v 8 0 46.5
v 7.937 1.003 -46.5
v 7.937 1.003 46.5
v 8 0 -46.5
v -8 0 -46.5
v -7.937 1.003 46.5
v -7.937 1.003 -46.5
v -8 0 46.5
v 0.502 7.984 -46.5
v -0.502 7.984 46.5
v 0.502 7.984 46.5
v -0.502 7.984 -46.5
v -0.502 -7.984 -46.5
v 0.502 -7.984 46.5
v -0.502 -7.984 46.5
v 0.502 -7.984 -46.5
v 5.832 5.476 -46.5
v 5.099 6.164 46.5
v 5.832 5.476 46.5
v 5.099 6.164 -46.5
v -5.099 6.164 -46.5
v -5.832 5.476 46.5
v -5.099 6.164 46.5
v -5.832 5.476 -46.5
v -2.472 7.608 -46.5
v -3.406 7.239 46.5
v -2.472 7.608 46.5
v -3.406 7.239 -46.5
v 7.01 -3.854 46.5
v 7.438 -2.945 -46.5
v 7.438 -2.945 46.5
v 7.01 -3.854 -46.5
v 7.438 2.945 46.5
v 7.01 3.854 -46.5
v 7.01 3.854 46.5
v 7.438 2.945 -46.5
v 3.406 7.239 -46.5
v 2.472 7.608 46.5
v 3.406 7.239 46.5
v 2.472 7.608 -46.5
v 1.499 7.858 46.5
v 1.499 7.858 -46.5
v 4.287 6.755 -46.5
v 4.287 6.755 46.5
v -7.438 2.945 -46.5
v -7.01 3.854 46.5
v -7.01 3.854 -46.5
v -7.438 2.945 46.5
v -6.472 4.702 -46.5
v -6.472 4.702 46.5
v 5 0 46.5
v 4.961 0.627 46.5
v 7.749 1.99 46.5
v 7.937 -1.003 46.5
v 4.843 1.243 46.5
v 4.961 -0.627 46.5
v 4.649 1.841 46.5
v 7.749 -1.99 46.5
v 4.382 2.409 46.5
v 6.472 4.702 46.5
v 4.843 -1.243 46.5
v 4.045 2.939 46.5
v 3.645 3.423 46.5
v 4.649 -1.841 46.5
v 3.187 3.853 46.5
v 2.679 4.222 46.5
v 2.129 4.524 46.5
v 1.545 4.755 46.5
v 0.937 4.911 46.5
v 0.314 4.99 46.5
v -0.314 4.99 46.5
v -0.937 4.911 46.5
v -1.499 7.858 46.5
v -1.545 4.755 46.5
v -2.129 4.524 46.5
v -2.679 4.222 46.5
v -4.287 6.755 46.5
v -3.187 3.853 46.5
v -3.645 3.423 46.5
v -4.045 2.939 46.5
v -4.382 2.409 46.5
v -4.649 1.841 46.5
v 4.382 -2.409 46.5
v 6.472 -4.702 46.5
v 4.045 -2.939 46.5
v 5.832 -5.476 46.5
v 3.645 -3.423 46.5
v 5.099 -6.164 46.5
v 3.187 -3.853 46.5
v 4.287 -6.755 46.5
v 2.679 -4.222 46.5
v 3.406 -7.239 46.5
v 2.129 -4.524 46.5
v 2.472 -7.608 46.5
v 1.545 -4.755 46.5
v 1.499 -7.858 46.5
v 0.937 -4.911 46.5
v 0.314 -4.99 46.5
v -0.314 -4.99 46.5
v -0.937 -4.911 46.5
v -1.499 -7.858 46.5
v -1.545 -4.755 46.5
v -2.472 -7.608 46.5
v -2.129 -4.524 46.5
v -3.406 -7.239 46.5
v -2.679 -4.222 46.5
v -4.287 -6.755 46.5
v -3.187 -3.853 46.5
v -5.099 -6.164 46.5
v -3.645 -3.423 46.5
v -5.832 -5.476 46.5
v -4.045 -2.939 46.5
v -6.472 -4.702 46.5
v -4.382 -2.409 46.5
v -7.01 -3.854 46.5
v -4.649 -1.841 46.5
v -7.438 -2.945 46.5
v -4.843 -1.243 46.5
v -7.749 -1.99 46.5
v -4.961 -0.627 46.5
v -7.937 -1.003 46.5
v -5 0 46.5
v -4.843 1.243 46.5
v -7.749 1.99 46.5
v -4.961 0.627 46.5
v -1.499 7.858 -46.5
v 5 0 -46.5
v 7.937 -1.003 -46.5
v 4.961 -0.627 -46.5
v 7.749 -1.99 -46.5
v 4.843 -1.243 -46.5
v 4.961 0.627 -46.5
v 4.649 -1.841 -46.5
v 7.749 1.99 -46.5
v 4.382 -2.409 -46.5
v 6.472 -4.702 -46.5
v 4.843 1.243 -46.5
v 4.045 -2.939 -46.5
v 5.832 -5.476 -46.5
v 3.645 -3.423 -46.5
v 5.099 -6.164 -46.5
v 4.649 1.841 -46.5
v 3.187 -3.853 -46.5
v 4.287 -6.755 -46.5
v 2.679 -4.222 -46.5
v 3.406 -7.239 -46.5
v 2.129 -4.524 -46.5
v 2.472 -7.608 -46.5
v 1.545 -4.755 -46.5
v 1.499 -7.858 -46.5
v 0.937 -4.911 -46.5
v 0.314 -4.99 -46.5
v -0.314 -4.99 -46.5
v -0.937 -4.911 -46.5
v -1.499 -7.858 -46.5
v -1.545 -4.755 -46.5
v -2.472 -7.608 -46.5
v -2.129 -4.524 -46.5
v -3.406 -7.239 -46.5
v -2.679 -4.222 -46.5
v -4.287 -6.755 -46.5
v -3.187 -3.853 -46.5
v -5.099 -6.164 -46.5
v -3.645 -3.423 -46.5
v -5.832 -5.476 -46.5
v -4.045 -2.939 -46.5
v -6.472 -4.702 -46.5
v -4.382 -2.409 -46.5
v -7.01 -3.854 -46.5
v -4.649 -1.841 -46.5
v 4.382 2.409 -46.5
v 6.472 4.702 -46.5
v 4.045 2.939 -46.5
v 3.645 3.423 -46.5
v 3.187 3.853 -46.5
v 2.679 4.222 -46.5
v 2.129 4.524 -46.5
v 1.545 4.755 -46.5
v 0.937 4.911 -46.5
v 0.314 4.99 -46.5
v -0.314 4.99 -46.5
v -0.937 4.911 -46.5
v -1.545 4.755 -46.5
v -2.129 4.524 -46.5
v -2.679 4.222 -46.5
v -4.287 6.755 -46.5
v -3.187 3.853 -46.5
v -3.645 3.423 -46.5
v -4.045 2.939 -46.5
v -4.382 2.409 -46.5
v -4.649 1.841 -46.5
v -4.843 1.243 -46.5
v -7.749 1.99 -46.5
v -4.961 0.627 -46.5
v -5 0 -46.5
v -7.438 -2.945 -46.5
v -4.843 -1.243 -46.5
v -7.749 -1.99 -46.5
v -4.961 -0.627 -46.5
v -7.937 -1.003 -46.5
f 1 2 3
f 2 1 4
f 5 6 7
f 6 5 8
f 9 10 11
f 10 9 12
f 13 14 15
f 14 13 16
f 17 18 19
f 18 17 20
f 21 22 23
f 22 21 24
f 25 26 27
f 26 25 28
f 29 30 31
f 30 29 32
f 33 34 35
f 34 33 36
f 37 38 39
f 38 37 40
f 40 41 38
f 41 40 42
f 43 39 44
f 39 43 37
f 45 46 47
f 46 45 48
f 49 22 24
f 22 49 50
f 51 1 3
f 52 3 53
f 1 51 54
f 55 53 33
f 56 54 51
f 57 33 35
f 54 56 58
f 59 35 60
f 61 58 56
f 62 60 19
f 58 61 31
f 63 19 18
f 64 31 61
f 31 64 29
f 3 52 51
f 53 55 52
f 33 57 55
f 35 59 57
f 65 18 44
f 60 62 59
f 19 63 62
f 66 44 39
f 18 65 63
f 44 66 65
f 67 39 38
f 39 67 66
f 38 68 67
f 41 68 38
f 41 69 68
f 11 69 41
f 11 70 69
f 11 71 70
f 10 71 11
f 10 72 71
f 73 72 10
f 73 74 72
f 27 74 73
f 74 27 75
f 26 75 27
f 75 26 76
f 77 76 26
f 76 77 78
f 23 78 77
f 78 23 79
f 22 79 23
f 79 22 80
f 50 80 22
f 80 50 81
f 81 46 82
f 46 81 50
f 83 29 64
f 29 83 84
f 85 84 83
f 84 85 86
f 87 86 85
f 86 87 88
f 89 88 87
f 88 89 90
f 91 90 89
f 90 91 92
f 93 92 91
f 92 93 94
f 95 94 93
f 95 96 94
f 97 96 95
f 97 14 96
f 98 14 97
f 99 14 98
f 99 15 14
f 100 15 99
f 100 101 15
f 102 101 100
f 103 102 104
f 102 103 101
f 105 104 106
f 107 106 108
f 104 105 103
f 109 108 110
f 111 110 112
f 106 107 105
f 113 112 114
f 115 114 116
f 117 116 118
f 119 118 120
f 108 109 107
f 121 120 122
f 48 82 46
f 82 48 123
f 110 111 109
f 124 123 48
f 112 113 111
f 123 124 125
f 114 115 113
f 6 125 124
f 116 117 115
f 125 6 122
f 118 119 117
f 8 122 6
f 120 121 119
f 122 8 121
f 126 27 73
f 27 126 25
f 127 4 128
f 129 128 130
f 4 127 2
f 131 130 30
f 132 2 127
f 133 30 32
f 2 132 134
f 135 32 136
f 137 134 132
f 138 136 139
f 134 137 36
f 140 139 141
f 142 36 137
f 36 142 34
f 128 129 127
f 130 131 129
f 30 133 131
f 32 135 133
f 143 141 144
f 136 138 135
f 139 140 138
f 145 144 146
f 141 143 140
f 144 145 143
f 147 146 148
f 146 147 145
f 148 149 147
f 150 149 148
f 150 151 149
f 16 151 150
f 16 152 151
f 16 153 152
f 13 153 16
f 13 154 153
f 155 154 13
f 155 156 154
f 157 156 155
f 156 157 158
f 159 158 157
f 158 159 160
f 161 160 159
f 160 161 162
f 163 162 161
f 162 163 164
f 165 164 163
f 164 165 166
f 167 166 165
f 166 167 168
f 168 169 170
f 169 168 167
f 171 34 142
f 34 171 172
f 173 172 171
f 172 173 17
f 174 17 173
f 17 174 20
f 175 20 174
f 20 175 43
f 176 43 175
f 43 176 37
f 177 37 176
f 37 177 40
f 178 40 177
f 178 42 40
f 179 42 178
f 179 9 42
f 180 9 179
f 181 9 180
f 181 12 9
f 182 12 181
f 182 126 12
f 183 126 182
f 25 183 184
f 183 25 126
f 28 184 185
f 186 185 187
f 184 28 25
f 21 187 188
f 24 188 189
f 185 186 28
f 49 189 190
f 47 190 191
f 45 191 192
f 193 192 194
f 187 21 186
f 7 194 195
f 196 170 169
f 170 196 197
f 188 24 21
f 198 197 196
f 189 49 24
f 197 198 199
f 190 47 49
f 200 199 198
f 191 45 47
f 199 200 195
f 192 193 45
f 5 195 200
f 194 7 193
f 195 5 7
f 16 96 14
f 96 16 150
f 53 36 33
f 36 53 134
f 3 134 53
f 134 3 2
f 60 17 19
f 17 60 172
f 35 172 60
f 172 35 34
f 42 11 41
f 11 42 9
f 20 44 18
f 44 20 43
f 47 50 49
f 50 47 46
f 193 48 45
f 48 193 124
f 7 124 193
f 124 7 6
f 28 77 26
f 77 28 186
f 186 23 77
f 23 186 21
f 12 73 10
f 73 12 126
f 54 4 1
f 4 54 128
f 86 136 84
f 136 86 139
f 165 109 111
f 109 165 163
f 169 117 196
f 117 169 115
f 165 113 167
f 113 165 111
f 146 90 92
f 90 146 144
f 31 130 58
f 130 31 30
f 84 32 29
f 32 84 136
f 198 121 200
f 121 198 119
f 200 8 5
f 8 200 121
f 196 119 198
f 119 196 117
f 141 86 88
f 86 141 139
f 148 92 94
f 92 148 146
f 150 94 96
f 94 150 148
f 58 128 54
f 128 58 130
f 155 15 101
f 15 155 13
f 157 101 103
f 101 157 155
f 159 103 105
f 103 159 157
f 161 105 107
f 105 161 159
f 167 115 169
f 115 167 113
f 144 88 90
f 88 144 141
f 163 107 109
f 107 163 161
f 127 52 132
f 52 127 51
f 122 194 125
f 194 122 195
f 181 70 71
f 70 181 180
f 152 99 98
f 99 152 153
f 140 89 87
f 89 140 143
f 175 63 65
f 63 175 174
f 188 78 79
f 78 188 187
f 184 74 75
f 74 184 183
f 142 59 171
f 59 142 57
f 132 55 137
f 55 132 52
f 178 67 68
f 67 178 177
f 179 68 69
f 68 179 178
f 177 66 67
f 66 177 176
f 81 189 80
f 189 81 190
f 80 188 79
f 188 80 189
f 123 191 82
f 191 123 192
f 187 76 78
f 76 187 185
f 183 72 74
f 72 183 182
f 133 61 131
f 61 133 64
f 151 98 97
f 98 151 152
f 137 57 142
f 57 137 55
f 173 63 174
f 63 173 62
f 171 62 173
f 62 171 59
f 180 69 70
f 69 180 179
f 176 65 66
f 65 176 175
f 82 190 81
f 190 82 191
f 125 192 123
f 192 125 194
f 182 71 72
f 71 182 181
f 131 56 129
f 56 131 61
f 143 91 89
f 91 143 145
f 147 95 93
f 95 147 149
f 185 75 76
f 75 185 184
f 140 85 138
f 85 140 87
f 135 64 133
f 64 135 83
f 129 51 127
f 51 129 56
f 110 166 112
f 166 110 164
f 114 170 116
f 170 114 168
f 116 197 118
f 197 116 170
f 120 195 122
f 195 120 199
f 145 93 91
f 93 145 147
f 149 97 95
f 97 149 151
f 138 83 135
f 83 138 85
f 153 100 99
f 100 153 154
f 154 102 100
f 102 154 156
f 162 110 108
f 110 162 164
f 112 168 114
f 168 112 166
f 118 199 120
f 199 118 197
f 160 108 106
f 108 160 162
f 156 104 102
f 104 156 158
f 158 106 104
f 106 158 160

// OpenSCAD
$fn = 50;


difference() {
	union() {
		translate(v = [0, 0, -46.5000000000]) {
			cylinder(h = 93, r = 8.0000000000);
		}
	}
	union() {
		translate(v = [0, 0, -100.0000000000]) {
			cylinder(h = 200, r = 5.0000000000);
		}
	}
}
